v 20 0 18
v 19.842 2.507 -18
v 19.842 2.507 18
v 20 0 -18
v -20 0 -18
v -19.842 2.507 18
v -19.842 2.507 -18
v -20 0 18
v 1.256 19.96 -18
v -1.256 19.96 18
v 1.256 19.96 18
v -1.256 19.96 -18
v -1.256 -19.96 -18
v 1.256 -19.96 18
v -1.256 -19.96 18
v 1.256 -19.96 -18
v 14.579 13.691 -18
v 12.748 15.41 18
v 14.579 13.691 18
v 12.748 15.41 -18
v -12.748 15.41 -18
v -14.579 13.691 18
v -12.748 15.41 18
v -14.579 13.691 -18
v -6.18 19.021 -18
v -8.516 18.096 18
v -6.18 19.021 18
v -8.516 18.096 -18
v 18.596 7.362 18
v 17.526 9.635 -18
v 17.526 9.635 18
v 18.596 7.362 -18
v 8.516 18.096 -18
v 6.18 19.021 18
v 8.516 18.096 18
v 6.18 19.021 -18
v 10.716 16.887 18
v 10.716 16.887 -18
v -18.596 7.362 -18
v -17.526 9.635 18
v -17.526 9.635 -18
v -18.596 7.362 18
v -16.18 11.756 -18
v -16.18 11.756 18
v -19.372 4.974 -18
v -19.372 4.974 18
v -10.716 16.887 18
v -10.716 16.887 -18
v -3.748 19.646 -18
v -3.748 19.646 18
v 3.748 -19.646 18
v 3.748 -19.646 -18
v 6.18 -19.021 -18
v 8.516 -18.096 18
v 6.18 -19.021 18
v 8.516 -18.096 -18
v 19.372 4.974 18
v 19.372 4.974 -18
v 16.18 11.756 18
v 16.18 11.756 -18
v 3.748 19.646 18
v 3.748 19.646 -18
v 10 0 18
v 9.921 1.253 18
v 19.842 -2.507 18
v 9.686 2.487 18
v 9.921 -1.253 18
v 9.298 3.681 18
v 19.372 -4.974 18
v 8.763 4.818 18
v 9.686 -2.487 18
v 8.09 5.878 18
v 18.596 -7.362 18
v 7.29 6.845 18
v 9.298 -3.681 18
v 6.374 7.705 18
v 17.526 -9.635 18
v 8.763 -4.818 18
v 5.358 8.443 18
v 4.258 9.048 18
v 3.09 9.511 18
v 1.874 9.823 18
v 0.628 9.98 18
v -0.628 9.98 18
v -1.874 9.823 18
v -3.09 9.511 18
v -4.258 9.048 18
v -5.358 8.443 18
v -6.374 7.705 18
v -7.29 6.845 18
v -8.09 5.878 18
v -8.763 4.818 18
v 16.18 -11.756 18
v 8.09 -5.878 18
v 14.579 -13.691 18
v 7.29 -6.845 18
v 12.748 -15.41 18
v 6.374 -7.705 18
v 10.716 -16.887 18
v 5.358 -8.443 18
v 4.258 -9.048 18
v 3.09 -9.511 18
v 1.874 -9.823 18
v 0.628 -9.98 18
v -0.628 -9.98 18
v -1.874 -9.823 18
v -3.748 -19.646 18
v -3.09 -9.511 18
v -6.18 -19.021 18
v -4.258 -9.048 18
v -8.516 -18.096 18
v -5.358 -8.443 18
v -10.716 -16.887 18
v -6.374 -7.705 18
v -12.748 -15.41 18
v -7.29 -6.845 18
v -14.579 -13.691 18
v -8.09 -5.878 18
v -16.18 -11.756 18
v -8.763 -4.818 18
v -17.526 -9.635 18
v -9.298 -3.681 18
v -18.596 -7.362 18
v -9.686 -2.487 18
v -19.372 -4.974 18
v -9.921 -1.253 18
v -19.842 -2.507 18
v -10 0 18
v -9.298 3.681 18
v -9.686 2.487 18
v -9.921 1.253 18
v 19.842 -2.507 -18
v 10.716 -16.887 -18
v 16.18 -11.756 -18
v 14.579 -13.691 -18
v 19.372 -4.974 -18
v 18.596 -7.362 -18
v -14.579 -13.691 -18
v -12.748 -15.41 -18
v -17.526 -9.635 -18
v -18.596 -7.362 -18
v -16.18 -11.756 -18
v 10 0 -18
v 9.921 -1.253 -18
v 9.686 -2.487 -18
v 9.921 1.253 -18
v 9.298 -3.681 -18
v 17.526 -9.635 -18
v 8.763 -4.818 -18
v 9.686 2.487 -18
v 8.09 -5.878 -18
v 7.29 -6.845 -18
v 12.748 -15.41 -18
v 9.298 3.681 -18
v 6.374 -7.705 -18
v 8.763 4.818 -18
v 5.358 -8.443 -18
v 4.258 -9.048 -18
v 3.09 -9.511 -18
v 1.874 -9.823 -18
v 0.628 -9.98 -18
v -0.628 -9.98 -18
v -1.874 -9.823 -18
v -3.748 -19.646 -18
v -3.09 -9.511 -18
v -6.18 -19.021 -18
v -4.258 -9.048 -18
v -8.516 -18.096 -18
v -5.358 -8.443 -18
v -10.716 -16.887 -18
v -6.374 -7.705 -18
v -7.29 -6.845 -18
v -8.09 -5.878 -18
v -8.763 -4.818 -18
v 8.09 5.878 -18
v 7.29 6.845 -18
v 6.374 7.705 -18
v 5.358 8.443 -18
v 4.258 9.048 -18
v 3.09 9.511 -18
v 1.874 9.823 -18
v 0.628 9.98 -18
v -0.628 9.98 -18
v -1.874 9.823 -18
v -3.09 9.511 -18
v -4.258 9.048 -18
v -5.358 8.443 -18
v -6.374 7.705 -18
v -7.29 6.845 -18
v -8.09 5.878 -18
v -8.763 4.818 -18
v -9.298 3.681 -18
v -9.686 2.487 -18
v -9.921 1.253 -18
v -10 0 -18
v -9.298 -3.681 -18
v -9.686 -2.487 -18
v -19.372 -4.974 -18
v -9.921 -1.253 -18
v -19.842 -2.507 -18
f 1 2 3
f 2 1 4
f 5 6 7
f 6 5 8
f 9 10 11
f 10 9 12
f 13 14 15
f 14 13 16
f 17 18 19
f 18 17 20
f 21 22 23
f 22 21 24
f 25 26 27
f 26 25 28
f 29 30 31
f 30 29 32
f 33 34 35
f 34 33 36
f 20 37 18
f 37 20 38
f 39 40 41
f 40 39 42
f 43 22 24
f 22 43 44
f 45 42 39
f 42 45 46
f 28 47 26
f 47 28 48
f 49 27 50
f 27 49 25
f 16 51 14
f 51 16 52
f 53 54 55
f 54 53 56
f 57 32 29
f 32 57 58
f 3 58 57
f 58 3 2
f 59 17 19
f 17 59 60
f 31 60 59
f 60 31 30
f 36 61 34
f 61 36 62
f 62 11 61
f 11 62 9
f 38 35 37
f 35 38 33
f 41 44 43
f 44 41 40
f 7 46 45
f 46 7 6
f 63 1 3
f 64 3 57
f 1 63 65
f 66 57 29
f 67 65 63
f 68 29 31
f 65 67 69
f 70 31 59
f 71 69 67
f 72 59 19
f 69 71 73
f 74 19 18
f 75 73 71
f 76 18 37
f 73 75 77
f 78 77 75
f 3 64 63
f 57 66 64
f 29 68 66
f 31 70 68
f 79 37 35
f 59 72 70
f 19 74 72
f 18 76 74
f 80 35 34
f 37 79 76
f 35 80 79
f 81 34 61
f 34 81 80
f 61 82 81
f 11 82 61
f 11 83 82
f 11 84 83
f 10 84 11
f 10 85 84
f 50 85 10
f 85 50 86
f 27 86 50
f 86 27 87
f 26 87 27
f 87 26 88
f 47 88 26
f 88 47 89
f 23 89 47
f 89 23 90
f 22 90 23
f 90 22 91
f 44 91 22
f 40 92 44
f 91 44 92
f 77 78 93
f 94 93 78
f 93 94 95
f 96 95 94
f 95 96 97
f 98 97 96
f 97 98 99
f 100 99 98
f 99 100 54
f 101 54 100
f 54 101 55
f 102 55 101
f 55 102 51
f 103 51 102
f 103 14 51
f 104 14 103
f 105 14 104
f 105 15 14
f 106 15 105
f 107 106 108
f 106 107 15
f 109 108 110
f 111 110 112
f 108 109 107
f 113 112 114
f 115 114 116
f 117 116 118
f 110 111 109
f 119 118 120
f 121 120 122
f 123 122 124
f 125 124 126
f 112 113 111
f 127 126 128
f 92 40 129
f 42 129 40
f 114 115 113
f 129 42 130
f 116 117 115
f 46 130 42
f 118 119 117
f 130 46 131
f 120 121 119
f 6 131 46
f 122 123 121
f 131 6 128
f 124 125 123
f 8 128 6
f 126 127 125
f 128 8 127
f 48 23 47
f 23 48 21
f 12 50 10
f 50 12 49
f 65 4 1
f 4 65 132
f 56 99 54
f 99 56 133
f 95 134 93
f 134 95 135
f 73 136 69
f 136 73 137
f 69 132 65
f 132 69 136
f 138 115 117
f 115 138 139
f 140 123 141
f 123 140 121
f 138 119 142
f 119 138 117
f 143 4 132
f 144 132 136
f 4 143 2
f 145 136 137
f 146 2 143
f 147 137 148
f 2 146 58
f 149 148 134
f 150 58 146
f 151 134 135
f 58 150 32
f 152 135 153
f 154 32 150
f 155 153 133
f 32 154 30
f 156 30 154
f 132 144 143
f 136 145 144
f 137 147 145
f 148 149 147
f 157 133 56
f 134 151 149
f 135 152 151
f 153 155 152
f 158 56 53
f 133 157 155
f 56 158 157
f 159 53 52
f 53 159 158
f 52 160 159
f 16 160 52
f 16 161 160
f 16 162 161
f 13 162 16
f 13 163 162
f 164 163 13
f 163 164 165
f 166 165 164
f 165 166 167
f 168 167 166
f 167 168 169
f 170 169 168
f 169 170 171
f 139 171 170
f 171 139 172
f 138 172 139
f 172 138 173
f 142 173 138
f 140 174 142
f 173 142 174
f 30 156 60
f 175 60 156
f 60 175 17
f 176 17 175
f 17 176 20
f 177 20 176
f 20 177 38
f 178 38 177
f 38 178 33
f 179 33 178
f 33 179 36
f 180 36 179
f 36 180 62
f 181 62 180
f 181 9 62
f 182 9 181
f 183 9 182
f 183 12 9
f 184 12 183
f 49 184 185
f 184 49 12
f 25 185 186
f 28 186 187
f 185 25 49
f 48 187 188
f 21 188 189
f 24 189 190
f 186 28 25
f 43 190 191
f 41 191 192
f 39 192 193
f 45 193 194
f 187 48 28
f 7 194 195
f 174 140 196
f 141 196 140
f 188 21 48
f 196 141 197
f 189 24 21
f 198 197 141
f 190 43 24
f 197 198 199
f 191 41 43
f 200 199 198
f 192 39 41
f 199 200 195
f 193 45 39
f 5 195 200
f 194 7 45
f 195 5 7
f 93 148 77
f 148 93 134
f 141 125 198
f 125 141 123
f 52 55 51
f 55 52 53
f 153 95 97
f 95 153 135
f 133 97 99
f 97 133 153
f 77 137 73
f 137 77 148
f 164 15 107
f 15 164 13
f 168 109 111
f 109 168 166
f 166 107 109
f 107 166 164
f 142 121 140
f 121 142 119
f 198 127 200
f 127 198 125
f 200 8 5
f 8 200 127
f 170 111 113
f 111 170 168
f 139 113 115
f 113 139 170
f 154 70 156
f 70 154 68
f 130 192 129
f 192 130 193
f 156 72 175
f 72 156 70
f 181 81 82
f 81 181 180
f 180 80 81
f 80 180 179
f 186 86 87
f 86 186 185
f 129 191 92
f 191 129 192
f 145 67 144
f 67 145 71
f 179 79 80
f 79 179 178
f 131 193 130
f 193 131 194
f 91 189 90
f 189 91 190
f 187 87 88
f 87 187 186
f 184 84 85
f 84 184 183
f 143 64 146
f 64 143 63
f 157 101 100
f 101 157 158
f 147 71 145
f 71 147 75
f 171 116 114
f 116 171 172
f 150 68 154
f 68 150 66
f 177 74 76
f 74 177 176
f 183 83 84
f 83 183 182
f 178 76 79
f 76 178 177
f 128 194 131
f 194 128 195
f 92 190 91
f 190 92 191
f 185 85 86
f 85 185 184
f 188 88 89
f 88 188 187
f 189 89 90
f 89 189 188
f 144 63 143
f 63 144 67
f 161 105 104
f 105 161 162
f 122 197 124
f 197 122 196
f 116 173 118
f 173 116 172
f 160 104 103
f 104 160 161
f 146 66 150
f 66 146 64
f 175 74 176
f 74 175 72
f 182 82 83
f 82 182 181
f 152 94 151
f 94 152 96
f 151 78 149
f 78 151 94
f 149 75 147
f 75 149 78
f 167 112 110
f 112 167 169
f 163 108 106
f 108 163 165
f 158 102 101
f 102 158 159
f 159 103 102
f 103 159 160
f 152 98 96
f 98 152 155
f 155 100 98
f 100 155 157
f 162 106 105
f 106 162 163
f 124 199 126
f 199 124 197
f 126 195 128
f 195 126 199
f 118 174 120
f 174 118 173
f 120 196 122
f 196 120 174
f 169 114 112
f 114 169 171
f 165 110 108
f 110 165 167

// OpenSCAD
$fn = 50;


difference() {
	union() {
		translate(v = [0, 0, -18.0000000000]) {
			cylinder(h = 36, r = 20.0000000000);
		}
	}
	union() {
		translate(v = [0, 0, -100.0000000000]) {
			cylinder(h = 200, r = 10);
		}
	}
}
